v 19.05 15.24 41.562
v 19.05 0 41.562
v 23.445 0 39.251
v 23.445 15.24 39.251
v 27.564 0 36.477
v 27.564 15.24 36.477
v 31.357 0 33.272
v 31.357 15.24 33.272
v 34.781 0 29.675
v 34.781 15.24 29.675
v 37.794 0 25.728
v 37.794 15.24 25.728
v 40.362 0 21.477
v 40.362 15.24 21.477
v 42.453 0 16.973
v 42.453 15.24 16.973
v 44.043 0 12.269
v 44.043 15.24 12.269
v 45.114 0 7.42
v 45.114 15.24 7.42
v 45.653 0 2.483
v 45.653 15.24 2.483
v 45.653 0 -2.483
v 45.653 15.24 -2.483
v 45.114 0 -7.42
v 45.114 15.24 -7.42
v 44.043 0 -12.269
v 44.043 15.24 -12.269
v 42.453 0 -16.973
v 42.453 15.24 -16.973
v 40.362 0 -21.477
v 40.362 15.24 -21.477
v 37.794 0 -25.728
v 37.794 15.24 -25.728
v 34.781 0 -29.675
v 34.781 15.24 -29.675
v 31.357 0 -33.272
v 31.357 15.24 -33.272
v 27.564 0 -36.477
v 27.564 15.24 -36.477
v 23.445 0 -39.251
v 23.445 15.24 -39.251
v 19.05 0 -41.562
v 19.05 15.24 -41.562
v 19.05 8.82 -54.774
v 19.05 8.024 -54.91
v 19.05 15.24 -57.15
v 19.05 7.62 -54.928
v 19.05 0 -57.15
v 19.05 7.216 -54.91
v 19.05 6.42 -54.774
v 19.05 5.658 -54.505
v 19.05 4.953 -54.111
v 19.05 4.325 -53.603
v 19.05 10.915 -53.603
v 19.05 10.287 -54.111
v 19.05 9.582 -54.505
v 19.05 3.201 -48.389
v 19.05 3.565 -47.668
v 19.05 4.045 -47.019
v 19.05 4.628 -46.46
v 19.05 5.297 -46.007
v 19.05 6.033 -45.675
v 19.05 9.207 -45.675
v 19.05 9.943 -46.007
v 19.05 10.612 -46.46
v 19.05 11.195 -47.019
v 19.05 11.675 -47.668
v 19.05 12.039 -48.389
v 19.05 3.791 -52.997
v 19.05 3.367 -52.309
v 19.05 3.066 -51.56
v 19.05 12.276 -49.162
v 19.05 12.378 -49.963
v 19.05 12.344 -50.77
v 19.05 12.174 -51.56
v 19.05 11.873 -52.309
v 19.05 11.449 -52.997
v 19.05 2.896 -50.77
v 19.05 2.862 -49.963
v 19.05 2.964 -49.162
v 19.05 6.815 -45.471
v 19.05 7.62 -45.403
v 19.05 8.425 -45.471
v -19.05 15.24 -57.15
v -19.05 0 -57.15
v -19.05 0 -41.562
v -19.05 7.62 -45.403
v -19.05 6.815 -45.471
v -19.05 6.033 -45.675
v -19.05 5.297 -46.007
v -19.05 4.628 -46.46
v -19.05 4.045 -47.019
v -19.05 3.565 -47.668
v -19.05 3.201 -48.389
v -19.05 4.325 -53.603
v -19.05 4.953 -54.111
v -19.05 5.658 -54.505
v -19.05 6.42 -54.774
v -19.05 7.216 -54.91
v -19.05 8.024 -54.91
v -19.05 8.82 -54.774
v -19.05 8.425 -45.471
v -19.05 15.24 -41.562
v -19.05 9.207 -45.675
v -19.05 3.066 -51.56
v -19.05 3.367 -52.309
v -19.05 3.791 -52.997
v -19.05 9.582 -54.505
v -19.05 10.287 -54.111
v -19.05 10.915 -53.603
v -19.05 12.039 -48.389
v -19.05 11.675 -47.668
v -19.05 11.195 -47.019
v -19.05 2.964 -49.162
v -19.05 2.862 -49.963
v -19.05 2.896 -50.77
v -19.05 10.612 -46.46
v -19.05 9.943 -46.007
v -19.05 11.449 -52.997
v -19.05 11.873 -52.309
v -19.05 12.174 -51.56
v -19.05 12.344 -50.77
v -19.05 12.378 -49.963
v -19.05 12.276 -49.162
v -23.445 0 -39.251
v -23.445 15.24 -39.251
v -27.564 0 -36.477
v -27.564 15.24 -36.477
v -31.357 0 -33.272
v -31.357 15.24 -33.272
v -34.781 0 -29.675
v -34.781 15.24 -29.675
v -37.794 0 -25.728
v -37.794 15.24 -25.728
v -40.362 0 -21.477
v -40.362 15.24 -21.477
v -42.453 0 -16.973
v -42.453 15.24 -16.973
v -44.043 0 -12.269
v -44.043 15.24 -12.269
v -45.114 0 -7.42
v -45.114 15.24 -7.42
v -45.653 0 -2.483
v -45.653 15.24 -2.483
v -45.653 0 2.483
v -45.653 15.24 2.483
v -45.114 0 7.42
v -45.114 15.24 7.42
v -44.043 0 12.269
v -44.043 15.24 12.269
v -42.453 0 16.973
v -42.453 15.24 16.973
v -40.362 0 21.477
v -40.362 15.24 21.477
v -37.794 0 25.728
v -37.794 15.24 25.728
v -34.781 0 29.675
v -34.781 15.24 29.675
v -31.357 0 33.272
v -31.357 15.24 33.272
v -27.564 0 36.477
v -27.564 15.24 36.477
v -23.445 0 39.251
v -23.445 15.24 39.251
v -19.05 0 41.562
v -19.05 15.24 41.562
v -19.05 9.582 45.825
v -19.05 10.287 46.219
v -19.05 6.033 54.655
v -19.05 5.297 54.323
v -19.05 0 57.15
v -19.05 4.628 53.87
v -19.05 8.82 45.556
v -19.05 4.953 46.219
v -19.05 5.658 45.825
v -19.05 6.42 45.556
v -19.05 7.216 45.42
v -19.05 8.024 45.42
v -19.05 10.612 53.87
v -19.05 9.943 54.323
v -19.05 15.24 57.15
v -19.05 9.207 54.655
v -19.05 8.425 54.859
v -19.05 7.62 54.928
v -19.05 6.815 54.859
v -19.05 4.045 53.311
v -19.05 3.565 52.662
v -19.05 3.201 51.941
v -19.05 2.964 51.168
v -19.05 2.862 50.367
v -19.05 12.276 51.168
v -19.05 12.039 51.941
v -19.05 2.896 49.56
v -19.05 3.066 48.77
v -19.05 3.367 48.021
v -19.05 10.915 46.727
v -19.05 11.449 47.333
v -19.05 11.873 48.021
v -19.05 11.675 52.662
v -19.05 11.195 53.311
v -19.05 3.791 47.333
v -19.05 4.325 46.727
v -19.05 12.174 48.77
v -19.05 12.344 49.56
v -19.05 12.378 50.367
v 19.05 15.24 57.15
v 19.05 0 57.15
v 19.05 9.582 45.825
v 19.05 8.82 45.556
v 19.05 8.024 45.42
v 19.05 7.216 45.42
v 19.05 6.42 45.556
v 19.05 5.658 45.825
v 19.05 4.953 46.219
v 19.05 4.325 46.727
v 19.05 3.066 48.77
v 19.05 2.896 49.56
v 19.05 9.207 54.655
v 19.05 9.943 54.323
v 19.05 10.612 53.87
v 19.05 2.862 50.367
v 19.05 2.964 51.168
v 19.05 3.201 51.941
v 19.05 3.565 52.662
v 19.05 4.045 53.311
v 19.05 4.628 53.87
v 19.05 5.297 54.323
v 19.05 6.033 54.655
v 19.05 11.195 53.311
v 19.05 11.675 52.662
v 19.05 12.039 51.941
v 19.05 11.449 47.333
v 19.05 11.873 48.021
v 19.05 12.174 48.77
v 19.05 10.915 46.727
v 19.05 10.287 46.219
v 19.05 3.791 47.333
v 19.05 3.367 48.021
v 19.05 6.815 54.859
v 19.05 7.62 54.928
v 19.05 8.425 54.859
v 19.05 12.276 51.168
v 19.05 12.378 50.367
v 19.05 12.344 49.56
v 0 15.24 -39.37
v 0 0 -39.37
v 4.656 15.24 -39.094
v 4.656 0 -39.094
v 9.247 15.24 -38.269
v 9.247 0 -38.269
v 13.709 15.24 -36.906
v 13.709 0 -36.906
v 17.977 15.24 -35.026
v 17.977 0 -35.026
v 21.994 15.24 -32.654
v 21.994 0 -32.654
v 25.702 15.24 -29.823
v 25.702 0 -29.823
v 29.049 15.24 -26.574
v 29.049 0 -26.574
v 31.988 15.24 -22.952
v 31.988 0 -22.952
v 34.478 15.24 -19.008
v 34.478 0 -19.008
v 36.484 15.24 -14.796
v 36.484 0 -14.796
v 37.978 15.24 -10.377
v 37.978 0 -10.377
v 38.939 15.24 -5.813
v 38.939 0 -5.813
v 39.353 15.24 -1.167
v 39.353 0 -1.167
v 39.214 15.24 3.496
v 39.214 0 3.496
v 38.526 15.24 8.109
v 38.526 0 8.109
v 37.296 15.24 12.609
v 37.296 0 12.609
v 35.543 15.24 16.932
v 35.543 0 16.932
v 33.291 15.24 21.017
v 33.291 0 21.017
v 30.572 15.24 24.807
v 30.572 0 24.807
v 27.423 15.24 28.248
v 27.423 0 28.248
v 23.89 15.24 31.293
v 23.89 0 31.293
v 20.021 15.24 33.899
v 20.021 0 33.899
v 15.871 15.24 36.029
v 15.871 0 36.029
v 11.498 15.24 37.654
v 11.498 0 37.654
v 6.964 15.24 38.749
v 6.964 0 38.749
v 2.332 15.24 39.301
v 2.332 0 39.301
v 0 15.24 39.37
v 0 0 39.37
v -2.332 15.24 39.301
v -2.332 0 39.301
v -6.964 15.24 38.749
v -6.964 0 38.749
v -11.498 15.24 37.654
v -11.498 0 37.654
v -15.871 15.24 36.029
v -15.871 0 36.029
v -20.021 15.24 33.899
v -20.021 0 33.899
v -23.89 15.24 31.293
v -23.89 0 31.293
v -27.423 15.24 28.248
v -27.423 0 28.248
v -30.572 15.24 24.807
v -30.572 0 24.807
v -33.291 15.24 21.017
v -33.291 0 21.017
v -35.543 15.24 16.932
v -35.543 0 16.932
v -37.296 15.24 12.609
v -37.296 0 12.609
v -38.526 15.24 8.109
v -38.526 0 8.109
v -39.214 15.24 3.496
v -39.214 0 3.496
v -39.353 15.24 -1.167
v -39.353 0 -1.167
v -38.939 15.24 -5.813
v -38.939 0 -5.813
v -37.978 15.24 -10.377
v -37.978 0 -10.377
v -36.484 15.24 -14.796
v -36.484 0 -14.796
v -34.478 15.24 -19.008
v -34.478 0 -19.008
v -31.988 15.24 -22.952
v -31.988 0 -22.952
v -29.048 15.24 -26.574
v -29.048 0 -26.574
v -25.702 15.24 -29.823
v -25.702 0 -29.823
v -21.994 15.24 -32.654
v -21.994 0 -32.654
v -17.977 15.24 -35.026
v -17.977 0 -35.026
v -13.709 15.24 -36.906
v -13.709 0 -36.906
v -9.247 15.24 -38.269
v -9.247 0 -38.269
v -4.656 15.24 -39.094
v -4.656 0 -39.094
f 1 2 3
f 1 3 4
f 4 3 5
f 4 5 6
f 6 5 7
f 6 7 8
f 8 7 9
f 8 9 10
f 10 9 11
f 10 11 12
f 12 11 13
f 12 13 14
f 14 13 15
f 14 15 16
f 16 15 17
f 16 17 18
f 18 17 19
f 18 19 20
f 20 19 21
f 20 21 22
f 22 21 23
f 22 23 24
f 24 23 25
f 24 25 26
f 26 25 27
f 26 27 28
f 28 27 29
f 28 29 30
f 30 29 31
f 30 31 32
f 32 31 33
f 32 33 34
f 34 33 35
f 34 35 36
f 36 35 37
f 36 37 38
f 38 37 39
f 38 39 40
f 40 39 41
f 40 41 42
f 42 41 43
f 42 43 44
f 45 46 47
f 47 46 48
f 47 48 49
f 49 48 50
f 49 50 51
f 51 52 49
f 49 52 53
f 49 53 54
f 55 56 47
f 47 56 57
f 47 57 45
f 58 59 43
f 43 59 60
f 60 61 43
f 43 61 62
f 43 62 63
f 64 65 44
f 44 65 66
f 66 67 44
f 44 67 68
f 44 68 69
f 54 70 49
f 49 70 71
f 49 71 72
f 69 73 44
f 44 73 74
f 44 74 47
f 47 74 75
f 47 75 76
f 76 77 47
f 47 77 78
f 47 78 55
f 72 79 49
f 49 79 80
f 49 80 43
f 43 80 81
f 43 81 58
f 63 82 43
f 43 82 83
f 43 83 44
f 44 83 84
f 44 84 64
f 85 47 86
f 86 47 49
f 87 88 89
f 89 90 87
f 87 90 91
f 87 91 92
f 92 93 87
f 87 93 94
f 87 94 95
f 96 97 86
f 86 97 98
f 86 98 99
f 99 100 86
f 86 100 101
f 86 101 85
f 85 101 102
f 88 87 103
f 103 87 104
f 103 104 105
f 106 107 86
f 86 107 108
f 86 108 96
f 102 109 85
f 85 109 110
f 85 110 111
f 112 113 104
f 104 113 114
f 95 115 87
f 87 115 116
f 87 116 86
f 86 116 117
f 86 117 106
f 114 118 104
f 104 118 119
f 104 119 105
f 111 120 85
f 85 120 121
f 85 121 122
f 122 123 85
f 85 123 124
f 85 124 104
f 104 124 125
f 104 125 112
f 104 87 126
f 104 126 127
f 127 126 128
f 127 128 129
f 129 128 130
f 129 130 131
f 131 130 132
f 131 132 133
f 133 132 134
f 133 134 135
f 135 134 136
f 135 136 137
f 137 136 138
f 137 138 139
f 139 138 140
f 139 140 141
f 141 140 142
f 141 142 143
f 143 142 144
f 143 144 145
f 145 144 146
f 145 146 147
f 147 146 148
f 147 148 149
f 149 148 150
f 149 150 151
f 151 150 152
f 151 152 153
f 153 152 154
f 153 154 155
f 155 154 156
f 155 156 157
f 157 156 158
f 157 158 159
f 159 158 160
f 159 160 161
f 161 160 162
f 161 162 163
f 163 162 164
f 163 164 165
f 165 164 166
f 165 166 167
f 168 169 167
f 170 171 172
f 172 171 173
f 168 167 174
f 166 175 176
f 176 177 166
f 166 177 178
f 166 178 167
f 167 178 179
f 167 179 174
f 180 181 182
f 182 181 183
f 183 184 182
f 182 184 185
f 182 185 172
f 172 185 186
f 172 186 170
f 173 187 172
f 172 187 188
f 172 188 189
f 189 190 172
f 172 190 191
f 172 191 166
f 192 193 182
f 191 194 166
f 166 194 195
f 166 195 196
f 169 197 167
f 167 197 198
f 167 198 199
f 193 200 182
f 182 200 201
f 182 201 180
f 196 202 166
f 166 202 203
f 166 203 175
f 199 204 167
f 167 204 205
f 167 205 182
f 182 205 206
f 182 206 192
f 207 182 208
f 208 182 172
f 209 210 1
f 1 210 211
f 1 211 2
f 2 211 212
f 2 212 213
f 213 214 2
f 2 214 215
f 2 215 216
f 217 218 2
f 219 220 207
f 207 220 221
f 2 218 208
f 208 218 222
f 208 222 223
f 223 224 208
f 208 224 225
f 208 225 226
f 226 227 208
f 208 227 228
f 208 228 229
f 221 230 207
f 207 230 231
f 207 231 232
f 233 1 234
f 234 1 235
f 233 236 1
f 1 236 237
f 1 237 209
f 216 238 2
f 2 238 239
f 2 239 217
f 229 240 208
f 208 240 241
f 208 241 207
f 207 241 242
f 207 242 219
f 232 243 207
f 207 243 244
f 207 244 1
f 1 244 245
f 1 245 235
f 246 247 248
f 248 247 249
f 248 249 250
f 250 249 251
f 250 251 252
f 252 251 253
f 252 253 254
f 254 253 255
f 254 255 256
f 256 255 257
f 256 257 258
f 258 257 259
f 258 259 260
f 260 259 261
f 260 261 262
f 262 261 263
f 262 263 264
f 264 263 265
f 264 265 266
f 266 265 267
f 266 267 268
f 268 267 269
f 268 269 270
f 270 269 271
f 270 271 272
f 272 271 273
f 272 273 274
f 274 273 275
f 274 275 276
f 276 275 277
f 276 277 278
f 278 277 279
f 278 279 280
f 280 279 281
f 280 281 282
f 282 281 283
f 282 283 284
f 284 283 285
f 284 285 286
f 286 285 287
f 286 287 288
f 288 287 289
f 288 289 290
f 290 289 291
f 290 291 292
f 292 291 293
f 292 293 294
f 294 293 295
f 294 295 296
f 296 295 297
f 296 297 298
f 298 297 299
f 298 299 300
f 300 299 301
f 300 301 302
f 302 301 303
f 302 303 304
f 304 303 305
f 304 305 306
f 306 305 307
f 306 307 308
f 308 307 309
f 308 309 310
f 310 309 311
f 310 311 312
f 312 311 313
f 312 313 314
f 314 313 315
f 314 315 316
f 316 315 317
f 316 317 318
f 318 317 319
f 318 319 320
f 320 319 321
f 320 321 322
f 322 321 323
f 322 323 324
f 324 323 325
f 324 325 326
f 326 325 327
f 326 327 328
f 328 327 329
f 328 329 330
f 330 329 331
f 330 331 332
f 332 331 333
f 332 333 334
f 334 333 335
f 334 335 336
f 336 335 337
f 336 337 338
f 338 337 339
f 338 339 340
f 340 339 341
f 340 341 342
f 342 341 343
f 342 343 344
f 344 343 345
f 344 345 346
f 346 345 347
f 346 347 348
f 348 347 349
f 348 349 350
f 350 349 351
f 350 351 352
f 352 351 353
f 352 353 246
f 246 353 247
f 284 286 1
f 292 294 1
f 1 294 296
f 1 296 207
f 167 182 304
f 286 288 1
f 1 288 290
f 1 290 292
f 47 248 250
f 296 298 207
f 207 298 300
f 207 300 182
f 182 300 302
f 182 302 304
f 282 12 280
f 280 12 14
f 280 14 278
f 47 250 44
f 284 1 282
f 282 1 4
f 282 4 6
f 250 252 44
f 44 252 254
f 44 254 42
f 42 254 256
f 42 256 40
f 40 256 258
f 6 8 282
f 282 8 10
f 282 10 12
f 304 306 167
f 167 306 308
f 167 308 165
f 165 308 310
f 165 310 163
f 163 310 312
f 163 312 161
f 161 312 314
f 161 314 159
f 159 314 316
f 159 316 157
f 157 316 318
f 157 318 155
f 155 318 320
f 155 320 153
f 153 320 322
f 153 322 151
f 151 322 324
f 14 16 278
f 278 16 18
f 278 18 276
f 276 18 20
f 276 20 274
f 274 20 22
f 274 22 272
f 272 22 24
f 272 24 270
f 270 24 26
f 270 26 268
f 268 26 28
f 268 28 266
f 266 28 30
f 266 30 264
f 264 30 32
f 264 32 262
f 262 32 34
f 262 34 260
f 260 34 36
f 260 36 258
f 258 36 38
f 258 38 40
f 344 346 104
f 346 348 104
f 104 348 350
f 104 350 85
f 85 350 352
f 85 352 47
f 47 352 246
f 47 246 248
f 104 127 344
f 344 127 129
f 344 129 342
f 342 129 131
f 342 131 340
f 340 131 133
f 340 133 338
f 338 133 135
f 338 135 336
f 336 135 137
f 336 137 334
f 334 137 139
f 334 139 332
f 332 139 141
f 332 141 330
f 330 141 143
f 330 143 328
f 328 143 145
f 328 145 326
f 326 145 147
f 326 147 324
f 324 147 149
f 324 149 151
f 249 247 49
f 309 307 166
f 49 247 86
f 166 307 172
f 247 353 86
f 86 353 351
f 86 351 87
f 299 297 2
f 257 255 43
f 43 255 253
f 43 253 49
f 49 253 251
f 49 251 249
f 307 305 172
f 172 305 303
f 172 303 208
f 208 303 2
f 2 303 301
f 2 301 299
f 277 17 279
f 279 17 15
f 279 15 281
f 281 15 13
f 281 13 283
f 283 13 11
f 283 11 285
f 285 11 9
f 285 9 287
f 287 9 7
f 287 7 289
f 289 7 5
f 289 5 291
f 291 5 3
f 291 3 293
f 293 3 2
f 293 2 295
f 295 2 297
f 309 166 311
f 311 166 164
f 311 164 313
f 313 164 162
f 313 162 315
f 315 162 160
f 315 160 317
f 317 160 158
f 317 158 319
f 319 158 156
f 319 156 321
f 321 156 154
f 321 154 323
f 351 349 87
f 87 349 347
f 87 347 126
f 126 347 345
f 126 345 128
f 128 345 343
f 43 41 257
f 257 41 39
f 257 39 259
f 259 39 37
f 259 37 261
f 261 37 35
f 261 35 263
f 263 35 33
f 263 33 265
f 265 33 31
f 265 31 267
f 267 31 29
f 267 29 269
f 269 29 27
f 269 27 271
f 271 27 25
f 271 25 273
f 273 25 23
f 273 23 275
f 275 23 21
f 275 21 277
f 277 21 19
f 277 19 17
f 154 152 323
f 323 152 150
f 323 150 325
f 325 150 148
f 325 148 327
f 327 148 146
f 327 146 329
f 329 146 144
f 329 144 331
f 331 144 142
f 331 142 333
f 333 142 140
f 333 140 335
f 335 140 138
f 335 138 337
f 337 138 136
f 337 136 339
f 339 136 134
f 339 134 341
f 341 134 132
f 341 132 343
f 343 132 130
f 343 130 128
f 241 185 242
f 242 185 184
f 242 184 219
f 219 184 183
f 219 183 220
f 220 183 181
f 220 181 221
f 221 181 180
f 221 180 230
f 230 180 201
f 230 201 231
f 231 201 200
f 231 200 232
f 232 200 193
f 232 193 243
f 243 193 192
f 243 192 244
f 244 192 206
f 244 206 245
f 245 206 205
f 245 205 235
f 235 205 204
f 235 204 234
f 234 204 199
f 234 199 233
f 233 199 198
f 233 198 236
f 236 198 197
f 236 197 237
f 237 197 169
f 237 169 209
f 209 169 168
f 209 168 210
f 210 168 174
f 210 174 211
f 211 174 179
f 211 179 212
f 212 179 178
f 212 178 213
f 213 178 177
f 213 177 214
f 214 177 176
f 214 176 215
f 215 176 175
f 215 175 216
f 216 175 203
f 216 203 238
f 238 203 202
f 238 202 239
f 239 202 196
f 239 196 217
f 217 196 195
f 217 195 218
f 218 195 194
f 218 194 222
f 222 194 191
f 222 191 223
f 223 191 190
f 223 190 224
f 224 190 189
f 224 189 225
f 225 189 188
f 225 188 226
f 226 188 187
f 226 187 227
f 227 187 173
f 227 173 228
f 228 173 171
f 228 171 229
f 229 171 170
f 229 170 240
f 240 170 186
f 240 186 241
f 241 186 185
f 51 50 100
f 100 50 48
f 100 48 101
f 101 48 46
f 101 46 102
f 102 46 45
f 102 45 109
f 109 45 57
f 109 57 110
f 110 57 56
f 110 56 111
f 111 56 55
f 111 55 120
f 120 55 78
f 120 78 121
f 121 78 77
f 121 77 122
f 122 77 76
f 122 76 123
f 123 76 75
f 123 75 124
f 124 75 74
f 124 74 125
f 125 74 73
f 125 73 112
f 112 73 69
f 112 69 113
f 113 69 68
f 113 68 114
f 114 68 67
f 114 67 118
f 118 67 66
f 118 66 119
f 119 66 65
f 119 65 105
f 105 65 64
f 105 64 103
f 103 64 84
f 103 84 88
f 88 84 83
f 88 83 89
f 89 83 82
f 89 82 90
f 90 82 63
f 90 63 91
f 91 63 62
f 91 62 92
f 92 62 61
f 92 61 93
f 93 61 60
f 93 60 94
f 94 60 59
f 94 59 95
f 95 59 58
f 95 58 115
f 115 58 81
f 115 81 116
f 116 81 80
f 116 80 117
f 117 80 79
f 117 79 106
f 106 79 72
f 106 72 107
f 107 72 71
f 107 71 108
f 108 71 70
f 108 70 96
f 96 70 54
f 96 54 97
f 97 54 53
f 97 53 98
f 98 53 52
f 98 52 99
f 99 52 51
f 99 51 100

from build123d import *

# Parameters (mm, degrees)
SKETCH1_R           = 39.37
BOSS_EXTRUDE1_DEPTH = 15.24
SKETCH2_R           = 4.7625
CUT_EXTRUDE1_DEPTH  = 88.712786981


with BuildPart() as part:
    # Sketch1 → Boss-Extrude1 (new body)
    with BuildSketch(Plane(origin=(0, 0, 0), x_dir=(1, 0, 0), z_dir=(0, 1, 0))):
        with BuildLine():
            Line((-19.05, 57.15), (19.05, 57.15))
            Line((19.05, 57.15), (19.05, 41.562193157))
            ThreePointArc((19.05, 41.562193157), (45.72, 0), (19.05, -41.562193157))
            Line((19.05, -41.562193157), (19.05, -57.15))
            Line((19.05, -57.15), (-19.05, -57.15))
            Line((-19.05, -57.15), (-19.05, -41.562193157))
            ThreePointArc((-19.05, -41.562193157), (-45.72, 0), (-19.05, 41.562193157))
            Line((-19.05, 41.562193157), (-19.05, 57.15))
        make_face()
        with Locations(Location((0, 0, 0), (0, 0, 90))):
            Circle(SKETCH1_R, mode=Mode.SUBTRACT)
    extrude(amount=BOSS_EXTRUDE1_DEPTH)

    # Sketch2 → Cut-Extrude1 (cut, through all)
    with BuildSketch(Plane.ZY.offset(19.05)):
        with BuildLine():
            ThreePointArc((45.4025, 7.62), (50.165, 2.8575), (54.9275, 7.62))
            Line((54.9275, 7.62), (45.4025, 7.62))
        make_face()
        with BuildLine():
            Line((45.4025, 7.62), (54.9275, 7.62))
            ThreePointArc((54.9275, 7.62), (50.165, 12.3825), (45.4025, 7.62))
        make_face()
        with Locations((-50.165, 7.62)):
            Circle(SKETCH2_R)
    extrude(amount=-CUT_EXTRUDE1_DEPTH, mode=Mode.SUBTRACT)


solid = part.part
